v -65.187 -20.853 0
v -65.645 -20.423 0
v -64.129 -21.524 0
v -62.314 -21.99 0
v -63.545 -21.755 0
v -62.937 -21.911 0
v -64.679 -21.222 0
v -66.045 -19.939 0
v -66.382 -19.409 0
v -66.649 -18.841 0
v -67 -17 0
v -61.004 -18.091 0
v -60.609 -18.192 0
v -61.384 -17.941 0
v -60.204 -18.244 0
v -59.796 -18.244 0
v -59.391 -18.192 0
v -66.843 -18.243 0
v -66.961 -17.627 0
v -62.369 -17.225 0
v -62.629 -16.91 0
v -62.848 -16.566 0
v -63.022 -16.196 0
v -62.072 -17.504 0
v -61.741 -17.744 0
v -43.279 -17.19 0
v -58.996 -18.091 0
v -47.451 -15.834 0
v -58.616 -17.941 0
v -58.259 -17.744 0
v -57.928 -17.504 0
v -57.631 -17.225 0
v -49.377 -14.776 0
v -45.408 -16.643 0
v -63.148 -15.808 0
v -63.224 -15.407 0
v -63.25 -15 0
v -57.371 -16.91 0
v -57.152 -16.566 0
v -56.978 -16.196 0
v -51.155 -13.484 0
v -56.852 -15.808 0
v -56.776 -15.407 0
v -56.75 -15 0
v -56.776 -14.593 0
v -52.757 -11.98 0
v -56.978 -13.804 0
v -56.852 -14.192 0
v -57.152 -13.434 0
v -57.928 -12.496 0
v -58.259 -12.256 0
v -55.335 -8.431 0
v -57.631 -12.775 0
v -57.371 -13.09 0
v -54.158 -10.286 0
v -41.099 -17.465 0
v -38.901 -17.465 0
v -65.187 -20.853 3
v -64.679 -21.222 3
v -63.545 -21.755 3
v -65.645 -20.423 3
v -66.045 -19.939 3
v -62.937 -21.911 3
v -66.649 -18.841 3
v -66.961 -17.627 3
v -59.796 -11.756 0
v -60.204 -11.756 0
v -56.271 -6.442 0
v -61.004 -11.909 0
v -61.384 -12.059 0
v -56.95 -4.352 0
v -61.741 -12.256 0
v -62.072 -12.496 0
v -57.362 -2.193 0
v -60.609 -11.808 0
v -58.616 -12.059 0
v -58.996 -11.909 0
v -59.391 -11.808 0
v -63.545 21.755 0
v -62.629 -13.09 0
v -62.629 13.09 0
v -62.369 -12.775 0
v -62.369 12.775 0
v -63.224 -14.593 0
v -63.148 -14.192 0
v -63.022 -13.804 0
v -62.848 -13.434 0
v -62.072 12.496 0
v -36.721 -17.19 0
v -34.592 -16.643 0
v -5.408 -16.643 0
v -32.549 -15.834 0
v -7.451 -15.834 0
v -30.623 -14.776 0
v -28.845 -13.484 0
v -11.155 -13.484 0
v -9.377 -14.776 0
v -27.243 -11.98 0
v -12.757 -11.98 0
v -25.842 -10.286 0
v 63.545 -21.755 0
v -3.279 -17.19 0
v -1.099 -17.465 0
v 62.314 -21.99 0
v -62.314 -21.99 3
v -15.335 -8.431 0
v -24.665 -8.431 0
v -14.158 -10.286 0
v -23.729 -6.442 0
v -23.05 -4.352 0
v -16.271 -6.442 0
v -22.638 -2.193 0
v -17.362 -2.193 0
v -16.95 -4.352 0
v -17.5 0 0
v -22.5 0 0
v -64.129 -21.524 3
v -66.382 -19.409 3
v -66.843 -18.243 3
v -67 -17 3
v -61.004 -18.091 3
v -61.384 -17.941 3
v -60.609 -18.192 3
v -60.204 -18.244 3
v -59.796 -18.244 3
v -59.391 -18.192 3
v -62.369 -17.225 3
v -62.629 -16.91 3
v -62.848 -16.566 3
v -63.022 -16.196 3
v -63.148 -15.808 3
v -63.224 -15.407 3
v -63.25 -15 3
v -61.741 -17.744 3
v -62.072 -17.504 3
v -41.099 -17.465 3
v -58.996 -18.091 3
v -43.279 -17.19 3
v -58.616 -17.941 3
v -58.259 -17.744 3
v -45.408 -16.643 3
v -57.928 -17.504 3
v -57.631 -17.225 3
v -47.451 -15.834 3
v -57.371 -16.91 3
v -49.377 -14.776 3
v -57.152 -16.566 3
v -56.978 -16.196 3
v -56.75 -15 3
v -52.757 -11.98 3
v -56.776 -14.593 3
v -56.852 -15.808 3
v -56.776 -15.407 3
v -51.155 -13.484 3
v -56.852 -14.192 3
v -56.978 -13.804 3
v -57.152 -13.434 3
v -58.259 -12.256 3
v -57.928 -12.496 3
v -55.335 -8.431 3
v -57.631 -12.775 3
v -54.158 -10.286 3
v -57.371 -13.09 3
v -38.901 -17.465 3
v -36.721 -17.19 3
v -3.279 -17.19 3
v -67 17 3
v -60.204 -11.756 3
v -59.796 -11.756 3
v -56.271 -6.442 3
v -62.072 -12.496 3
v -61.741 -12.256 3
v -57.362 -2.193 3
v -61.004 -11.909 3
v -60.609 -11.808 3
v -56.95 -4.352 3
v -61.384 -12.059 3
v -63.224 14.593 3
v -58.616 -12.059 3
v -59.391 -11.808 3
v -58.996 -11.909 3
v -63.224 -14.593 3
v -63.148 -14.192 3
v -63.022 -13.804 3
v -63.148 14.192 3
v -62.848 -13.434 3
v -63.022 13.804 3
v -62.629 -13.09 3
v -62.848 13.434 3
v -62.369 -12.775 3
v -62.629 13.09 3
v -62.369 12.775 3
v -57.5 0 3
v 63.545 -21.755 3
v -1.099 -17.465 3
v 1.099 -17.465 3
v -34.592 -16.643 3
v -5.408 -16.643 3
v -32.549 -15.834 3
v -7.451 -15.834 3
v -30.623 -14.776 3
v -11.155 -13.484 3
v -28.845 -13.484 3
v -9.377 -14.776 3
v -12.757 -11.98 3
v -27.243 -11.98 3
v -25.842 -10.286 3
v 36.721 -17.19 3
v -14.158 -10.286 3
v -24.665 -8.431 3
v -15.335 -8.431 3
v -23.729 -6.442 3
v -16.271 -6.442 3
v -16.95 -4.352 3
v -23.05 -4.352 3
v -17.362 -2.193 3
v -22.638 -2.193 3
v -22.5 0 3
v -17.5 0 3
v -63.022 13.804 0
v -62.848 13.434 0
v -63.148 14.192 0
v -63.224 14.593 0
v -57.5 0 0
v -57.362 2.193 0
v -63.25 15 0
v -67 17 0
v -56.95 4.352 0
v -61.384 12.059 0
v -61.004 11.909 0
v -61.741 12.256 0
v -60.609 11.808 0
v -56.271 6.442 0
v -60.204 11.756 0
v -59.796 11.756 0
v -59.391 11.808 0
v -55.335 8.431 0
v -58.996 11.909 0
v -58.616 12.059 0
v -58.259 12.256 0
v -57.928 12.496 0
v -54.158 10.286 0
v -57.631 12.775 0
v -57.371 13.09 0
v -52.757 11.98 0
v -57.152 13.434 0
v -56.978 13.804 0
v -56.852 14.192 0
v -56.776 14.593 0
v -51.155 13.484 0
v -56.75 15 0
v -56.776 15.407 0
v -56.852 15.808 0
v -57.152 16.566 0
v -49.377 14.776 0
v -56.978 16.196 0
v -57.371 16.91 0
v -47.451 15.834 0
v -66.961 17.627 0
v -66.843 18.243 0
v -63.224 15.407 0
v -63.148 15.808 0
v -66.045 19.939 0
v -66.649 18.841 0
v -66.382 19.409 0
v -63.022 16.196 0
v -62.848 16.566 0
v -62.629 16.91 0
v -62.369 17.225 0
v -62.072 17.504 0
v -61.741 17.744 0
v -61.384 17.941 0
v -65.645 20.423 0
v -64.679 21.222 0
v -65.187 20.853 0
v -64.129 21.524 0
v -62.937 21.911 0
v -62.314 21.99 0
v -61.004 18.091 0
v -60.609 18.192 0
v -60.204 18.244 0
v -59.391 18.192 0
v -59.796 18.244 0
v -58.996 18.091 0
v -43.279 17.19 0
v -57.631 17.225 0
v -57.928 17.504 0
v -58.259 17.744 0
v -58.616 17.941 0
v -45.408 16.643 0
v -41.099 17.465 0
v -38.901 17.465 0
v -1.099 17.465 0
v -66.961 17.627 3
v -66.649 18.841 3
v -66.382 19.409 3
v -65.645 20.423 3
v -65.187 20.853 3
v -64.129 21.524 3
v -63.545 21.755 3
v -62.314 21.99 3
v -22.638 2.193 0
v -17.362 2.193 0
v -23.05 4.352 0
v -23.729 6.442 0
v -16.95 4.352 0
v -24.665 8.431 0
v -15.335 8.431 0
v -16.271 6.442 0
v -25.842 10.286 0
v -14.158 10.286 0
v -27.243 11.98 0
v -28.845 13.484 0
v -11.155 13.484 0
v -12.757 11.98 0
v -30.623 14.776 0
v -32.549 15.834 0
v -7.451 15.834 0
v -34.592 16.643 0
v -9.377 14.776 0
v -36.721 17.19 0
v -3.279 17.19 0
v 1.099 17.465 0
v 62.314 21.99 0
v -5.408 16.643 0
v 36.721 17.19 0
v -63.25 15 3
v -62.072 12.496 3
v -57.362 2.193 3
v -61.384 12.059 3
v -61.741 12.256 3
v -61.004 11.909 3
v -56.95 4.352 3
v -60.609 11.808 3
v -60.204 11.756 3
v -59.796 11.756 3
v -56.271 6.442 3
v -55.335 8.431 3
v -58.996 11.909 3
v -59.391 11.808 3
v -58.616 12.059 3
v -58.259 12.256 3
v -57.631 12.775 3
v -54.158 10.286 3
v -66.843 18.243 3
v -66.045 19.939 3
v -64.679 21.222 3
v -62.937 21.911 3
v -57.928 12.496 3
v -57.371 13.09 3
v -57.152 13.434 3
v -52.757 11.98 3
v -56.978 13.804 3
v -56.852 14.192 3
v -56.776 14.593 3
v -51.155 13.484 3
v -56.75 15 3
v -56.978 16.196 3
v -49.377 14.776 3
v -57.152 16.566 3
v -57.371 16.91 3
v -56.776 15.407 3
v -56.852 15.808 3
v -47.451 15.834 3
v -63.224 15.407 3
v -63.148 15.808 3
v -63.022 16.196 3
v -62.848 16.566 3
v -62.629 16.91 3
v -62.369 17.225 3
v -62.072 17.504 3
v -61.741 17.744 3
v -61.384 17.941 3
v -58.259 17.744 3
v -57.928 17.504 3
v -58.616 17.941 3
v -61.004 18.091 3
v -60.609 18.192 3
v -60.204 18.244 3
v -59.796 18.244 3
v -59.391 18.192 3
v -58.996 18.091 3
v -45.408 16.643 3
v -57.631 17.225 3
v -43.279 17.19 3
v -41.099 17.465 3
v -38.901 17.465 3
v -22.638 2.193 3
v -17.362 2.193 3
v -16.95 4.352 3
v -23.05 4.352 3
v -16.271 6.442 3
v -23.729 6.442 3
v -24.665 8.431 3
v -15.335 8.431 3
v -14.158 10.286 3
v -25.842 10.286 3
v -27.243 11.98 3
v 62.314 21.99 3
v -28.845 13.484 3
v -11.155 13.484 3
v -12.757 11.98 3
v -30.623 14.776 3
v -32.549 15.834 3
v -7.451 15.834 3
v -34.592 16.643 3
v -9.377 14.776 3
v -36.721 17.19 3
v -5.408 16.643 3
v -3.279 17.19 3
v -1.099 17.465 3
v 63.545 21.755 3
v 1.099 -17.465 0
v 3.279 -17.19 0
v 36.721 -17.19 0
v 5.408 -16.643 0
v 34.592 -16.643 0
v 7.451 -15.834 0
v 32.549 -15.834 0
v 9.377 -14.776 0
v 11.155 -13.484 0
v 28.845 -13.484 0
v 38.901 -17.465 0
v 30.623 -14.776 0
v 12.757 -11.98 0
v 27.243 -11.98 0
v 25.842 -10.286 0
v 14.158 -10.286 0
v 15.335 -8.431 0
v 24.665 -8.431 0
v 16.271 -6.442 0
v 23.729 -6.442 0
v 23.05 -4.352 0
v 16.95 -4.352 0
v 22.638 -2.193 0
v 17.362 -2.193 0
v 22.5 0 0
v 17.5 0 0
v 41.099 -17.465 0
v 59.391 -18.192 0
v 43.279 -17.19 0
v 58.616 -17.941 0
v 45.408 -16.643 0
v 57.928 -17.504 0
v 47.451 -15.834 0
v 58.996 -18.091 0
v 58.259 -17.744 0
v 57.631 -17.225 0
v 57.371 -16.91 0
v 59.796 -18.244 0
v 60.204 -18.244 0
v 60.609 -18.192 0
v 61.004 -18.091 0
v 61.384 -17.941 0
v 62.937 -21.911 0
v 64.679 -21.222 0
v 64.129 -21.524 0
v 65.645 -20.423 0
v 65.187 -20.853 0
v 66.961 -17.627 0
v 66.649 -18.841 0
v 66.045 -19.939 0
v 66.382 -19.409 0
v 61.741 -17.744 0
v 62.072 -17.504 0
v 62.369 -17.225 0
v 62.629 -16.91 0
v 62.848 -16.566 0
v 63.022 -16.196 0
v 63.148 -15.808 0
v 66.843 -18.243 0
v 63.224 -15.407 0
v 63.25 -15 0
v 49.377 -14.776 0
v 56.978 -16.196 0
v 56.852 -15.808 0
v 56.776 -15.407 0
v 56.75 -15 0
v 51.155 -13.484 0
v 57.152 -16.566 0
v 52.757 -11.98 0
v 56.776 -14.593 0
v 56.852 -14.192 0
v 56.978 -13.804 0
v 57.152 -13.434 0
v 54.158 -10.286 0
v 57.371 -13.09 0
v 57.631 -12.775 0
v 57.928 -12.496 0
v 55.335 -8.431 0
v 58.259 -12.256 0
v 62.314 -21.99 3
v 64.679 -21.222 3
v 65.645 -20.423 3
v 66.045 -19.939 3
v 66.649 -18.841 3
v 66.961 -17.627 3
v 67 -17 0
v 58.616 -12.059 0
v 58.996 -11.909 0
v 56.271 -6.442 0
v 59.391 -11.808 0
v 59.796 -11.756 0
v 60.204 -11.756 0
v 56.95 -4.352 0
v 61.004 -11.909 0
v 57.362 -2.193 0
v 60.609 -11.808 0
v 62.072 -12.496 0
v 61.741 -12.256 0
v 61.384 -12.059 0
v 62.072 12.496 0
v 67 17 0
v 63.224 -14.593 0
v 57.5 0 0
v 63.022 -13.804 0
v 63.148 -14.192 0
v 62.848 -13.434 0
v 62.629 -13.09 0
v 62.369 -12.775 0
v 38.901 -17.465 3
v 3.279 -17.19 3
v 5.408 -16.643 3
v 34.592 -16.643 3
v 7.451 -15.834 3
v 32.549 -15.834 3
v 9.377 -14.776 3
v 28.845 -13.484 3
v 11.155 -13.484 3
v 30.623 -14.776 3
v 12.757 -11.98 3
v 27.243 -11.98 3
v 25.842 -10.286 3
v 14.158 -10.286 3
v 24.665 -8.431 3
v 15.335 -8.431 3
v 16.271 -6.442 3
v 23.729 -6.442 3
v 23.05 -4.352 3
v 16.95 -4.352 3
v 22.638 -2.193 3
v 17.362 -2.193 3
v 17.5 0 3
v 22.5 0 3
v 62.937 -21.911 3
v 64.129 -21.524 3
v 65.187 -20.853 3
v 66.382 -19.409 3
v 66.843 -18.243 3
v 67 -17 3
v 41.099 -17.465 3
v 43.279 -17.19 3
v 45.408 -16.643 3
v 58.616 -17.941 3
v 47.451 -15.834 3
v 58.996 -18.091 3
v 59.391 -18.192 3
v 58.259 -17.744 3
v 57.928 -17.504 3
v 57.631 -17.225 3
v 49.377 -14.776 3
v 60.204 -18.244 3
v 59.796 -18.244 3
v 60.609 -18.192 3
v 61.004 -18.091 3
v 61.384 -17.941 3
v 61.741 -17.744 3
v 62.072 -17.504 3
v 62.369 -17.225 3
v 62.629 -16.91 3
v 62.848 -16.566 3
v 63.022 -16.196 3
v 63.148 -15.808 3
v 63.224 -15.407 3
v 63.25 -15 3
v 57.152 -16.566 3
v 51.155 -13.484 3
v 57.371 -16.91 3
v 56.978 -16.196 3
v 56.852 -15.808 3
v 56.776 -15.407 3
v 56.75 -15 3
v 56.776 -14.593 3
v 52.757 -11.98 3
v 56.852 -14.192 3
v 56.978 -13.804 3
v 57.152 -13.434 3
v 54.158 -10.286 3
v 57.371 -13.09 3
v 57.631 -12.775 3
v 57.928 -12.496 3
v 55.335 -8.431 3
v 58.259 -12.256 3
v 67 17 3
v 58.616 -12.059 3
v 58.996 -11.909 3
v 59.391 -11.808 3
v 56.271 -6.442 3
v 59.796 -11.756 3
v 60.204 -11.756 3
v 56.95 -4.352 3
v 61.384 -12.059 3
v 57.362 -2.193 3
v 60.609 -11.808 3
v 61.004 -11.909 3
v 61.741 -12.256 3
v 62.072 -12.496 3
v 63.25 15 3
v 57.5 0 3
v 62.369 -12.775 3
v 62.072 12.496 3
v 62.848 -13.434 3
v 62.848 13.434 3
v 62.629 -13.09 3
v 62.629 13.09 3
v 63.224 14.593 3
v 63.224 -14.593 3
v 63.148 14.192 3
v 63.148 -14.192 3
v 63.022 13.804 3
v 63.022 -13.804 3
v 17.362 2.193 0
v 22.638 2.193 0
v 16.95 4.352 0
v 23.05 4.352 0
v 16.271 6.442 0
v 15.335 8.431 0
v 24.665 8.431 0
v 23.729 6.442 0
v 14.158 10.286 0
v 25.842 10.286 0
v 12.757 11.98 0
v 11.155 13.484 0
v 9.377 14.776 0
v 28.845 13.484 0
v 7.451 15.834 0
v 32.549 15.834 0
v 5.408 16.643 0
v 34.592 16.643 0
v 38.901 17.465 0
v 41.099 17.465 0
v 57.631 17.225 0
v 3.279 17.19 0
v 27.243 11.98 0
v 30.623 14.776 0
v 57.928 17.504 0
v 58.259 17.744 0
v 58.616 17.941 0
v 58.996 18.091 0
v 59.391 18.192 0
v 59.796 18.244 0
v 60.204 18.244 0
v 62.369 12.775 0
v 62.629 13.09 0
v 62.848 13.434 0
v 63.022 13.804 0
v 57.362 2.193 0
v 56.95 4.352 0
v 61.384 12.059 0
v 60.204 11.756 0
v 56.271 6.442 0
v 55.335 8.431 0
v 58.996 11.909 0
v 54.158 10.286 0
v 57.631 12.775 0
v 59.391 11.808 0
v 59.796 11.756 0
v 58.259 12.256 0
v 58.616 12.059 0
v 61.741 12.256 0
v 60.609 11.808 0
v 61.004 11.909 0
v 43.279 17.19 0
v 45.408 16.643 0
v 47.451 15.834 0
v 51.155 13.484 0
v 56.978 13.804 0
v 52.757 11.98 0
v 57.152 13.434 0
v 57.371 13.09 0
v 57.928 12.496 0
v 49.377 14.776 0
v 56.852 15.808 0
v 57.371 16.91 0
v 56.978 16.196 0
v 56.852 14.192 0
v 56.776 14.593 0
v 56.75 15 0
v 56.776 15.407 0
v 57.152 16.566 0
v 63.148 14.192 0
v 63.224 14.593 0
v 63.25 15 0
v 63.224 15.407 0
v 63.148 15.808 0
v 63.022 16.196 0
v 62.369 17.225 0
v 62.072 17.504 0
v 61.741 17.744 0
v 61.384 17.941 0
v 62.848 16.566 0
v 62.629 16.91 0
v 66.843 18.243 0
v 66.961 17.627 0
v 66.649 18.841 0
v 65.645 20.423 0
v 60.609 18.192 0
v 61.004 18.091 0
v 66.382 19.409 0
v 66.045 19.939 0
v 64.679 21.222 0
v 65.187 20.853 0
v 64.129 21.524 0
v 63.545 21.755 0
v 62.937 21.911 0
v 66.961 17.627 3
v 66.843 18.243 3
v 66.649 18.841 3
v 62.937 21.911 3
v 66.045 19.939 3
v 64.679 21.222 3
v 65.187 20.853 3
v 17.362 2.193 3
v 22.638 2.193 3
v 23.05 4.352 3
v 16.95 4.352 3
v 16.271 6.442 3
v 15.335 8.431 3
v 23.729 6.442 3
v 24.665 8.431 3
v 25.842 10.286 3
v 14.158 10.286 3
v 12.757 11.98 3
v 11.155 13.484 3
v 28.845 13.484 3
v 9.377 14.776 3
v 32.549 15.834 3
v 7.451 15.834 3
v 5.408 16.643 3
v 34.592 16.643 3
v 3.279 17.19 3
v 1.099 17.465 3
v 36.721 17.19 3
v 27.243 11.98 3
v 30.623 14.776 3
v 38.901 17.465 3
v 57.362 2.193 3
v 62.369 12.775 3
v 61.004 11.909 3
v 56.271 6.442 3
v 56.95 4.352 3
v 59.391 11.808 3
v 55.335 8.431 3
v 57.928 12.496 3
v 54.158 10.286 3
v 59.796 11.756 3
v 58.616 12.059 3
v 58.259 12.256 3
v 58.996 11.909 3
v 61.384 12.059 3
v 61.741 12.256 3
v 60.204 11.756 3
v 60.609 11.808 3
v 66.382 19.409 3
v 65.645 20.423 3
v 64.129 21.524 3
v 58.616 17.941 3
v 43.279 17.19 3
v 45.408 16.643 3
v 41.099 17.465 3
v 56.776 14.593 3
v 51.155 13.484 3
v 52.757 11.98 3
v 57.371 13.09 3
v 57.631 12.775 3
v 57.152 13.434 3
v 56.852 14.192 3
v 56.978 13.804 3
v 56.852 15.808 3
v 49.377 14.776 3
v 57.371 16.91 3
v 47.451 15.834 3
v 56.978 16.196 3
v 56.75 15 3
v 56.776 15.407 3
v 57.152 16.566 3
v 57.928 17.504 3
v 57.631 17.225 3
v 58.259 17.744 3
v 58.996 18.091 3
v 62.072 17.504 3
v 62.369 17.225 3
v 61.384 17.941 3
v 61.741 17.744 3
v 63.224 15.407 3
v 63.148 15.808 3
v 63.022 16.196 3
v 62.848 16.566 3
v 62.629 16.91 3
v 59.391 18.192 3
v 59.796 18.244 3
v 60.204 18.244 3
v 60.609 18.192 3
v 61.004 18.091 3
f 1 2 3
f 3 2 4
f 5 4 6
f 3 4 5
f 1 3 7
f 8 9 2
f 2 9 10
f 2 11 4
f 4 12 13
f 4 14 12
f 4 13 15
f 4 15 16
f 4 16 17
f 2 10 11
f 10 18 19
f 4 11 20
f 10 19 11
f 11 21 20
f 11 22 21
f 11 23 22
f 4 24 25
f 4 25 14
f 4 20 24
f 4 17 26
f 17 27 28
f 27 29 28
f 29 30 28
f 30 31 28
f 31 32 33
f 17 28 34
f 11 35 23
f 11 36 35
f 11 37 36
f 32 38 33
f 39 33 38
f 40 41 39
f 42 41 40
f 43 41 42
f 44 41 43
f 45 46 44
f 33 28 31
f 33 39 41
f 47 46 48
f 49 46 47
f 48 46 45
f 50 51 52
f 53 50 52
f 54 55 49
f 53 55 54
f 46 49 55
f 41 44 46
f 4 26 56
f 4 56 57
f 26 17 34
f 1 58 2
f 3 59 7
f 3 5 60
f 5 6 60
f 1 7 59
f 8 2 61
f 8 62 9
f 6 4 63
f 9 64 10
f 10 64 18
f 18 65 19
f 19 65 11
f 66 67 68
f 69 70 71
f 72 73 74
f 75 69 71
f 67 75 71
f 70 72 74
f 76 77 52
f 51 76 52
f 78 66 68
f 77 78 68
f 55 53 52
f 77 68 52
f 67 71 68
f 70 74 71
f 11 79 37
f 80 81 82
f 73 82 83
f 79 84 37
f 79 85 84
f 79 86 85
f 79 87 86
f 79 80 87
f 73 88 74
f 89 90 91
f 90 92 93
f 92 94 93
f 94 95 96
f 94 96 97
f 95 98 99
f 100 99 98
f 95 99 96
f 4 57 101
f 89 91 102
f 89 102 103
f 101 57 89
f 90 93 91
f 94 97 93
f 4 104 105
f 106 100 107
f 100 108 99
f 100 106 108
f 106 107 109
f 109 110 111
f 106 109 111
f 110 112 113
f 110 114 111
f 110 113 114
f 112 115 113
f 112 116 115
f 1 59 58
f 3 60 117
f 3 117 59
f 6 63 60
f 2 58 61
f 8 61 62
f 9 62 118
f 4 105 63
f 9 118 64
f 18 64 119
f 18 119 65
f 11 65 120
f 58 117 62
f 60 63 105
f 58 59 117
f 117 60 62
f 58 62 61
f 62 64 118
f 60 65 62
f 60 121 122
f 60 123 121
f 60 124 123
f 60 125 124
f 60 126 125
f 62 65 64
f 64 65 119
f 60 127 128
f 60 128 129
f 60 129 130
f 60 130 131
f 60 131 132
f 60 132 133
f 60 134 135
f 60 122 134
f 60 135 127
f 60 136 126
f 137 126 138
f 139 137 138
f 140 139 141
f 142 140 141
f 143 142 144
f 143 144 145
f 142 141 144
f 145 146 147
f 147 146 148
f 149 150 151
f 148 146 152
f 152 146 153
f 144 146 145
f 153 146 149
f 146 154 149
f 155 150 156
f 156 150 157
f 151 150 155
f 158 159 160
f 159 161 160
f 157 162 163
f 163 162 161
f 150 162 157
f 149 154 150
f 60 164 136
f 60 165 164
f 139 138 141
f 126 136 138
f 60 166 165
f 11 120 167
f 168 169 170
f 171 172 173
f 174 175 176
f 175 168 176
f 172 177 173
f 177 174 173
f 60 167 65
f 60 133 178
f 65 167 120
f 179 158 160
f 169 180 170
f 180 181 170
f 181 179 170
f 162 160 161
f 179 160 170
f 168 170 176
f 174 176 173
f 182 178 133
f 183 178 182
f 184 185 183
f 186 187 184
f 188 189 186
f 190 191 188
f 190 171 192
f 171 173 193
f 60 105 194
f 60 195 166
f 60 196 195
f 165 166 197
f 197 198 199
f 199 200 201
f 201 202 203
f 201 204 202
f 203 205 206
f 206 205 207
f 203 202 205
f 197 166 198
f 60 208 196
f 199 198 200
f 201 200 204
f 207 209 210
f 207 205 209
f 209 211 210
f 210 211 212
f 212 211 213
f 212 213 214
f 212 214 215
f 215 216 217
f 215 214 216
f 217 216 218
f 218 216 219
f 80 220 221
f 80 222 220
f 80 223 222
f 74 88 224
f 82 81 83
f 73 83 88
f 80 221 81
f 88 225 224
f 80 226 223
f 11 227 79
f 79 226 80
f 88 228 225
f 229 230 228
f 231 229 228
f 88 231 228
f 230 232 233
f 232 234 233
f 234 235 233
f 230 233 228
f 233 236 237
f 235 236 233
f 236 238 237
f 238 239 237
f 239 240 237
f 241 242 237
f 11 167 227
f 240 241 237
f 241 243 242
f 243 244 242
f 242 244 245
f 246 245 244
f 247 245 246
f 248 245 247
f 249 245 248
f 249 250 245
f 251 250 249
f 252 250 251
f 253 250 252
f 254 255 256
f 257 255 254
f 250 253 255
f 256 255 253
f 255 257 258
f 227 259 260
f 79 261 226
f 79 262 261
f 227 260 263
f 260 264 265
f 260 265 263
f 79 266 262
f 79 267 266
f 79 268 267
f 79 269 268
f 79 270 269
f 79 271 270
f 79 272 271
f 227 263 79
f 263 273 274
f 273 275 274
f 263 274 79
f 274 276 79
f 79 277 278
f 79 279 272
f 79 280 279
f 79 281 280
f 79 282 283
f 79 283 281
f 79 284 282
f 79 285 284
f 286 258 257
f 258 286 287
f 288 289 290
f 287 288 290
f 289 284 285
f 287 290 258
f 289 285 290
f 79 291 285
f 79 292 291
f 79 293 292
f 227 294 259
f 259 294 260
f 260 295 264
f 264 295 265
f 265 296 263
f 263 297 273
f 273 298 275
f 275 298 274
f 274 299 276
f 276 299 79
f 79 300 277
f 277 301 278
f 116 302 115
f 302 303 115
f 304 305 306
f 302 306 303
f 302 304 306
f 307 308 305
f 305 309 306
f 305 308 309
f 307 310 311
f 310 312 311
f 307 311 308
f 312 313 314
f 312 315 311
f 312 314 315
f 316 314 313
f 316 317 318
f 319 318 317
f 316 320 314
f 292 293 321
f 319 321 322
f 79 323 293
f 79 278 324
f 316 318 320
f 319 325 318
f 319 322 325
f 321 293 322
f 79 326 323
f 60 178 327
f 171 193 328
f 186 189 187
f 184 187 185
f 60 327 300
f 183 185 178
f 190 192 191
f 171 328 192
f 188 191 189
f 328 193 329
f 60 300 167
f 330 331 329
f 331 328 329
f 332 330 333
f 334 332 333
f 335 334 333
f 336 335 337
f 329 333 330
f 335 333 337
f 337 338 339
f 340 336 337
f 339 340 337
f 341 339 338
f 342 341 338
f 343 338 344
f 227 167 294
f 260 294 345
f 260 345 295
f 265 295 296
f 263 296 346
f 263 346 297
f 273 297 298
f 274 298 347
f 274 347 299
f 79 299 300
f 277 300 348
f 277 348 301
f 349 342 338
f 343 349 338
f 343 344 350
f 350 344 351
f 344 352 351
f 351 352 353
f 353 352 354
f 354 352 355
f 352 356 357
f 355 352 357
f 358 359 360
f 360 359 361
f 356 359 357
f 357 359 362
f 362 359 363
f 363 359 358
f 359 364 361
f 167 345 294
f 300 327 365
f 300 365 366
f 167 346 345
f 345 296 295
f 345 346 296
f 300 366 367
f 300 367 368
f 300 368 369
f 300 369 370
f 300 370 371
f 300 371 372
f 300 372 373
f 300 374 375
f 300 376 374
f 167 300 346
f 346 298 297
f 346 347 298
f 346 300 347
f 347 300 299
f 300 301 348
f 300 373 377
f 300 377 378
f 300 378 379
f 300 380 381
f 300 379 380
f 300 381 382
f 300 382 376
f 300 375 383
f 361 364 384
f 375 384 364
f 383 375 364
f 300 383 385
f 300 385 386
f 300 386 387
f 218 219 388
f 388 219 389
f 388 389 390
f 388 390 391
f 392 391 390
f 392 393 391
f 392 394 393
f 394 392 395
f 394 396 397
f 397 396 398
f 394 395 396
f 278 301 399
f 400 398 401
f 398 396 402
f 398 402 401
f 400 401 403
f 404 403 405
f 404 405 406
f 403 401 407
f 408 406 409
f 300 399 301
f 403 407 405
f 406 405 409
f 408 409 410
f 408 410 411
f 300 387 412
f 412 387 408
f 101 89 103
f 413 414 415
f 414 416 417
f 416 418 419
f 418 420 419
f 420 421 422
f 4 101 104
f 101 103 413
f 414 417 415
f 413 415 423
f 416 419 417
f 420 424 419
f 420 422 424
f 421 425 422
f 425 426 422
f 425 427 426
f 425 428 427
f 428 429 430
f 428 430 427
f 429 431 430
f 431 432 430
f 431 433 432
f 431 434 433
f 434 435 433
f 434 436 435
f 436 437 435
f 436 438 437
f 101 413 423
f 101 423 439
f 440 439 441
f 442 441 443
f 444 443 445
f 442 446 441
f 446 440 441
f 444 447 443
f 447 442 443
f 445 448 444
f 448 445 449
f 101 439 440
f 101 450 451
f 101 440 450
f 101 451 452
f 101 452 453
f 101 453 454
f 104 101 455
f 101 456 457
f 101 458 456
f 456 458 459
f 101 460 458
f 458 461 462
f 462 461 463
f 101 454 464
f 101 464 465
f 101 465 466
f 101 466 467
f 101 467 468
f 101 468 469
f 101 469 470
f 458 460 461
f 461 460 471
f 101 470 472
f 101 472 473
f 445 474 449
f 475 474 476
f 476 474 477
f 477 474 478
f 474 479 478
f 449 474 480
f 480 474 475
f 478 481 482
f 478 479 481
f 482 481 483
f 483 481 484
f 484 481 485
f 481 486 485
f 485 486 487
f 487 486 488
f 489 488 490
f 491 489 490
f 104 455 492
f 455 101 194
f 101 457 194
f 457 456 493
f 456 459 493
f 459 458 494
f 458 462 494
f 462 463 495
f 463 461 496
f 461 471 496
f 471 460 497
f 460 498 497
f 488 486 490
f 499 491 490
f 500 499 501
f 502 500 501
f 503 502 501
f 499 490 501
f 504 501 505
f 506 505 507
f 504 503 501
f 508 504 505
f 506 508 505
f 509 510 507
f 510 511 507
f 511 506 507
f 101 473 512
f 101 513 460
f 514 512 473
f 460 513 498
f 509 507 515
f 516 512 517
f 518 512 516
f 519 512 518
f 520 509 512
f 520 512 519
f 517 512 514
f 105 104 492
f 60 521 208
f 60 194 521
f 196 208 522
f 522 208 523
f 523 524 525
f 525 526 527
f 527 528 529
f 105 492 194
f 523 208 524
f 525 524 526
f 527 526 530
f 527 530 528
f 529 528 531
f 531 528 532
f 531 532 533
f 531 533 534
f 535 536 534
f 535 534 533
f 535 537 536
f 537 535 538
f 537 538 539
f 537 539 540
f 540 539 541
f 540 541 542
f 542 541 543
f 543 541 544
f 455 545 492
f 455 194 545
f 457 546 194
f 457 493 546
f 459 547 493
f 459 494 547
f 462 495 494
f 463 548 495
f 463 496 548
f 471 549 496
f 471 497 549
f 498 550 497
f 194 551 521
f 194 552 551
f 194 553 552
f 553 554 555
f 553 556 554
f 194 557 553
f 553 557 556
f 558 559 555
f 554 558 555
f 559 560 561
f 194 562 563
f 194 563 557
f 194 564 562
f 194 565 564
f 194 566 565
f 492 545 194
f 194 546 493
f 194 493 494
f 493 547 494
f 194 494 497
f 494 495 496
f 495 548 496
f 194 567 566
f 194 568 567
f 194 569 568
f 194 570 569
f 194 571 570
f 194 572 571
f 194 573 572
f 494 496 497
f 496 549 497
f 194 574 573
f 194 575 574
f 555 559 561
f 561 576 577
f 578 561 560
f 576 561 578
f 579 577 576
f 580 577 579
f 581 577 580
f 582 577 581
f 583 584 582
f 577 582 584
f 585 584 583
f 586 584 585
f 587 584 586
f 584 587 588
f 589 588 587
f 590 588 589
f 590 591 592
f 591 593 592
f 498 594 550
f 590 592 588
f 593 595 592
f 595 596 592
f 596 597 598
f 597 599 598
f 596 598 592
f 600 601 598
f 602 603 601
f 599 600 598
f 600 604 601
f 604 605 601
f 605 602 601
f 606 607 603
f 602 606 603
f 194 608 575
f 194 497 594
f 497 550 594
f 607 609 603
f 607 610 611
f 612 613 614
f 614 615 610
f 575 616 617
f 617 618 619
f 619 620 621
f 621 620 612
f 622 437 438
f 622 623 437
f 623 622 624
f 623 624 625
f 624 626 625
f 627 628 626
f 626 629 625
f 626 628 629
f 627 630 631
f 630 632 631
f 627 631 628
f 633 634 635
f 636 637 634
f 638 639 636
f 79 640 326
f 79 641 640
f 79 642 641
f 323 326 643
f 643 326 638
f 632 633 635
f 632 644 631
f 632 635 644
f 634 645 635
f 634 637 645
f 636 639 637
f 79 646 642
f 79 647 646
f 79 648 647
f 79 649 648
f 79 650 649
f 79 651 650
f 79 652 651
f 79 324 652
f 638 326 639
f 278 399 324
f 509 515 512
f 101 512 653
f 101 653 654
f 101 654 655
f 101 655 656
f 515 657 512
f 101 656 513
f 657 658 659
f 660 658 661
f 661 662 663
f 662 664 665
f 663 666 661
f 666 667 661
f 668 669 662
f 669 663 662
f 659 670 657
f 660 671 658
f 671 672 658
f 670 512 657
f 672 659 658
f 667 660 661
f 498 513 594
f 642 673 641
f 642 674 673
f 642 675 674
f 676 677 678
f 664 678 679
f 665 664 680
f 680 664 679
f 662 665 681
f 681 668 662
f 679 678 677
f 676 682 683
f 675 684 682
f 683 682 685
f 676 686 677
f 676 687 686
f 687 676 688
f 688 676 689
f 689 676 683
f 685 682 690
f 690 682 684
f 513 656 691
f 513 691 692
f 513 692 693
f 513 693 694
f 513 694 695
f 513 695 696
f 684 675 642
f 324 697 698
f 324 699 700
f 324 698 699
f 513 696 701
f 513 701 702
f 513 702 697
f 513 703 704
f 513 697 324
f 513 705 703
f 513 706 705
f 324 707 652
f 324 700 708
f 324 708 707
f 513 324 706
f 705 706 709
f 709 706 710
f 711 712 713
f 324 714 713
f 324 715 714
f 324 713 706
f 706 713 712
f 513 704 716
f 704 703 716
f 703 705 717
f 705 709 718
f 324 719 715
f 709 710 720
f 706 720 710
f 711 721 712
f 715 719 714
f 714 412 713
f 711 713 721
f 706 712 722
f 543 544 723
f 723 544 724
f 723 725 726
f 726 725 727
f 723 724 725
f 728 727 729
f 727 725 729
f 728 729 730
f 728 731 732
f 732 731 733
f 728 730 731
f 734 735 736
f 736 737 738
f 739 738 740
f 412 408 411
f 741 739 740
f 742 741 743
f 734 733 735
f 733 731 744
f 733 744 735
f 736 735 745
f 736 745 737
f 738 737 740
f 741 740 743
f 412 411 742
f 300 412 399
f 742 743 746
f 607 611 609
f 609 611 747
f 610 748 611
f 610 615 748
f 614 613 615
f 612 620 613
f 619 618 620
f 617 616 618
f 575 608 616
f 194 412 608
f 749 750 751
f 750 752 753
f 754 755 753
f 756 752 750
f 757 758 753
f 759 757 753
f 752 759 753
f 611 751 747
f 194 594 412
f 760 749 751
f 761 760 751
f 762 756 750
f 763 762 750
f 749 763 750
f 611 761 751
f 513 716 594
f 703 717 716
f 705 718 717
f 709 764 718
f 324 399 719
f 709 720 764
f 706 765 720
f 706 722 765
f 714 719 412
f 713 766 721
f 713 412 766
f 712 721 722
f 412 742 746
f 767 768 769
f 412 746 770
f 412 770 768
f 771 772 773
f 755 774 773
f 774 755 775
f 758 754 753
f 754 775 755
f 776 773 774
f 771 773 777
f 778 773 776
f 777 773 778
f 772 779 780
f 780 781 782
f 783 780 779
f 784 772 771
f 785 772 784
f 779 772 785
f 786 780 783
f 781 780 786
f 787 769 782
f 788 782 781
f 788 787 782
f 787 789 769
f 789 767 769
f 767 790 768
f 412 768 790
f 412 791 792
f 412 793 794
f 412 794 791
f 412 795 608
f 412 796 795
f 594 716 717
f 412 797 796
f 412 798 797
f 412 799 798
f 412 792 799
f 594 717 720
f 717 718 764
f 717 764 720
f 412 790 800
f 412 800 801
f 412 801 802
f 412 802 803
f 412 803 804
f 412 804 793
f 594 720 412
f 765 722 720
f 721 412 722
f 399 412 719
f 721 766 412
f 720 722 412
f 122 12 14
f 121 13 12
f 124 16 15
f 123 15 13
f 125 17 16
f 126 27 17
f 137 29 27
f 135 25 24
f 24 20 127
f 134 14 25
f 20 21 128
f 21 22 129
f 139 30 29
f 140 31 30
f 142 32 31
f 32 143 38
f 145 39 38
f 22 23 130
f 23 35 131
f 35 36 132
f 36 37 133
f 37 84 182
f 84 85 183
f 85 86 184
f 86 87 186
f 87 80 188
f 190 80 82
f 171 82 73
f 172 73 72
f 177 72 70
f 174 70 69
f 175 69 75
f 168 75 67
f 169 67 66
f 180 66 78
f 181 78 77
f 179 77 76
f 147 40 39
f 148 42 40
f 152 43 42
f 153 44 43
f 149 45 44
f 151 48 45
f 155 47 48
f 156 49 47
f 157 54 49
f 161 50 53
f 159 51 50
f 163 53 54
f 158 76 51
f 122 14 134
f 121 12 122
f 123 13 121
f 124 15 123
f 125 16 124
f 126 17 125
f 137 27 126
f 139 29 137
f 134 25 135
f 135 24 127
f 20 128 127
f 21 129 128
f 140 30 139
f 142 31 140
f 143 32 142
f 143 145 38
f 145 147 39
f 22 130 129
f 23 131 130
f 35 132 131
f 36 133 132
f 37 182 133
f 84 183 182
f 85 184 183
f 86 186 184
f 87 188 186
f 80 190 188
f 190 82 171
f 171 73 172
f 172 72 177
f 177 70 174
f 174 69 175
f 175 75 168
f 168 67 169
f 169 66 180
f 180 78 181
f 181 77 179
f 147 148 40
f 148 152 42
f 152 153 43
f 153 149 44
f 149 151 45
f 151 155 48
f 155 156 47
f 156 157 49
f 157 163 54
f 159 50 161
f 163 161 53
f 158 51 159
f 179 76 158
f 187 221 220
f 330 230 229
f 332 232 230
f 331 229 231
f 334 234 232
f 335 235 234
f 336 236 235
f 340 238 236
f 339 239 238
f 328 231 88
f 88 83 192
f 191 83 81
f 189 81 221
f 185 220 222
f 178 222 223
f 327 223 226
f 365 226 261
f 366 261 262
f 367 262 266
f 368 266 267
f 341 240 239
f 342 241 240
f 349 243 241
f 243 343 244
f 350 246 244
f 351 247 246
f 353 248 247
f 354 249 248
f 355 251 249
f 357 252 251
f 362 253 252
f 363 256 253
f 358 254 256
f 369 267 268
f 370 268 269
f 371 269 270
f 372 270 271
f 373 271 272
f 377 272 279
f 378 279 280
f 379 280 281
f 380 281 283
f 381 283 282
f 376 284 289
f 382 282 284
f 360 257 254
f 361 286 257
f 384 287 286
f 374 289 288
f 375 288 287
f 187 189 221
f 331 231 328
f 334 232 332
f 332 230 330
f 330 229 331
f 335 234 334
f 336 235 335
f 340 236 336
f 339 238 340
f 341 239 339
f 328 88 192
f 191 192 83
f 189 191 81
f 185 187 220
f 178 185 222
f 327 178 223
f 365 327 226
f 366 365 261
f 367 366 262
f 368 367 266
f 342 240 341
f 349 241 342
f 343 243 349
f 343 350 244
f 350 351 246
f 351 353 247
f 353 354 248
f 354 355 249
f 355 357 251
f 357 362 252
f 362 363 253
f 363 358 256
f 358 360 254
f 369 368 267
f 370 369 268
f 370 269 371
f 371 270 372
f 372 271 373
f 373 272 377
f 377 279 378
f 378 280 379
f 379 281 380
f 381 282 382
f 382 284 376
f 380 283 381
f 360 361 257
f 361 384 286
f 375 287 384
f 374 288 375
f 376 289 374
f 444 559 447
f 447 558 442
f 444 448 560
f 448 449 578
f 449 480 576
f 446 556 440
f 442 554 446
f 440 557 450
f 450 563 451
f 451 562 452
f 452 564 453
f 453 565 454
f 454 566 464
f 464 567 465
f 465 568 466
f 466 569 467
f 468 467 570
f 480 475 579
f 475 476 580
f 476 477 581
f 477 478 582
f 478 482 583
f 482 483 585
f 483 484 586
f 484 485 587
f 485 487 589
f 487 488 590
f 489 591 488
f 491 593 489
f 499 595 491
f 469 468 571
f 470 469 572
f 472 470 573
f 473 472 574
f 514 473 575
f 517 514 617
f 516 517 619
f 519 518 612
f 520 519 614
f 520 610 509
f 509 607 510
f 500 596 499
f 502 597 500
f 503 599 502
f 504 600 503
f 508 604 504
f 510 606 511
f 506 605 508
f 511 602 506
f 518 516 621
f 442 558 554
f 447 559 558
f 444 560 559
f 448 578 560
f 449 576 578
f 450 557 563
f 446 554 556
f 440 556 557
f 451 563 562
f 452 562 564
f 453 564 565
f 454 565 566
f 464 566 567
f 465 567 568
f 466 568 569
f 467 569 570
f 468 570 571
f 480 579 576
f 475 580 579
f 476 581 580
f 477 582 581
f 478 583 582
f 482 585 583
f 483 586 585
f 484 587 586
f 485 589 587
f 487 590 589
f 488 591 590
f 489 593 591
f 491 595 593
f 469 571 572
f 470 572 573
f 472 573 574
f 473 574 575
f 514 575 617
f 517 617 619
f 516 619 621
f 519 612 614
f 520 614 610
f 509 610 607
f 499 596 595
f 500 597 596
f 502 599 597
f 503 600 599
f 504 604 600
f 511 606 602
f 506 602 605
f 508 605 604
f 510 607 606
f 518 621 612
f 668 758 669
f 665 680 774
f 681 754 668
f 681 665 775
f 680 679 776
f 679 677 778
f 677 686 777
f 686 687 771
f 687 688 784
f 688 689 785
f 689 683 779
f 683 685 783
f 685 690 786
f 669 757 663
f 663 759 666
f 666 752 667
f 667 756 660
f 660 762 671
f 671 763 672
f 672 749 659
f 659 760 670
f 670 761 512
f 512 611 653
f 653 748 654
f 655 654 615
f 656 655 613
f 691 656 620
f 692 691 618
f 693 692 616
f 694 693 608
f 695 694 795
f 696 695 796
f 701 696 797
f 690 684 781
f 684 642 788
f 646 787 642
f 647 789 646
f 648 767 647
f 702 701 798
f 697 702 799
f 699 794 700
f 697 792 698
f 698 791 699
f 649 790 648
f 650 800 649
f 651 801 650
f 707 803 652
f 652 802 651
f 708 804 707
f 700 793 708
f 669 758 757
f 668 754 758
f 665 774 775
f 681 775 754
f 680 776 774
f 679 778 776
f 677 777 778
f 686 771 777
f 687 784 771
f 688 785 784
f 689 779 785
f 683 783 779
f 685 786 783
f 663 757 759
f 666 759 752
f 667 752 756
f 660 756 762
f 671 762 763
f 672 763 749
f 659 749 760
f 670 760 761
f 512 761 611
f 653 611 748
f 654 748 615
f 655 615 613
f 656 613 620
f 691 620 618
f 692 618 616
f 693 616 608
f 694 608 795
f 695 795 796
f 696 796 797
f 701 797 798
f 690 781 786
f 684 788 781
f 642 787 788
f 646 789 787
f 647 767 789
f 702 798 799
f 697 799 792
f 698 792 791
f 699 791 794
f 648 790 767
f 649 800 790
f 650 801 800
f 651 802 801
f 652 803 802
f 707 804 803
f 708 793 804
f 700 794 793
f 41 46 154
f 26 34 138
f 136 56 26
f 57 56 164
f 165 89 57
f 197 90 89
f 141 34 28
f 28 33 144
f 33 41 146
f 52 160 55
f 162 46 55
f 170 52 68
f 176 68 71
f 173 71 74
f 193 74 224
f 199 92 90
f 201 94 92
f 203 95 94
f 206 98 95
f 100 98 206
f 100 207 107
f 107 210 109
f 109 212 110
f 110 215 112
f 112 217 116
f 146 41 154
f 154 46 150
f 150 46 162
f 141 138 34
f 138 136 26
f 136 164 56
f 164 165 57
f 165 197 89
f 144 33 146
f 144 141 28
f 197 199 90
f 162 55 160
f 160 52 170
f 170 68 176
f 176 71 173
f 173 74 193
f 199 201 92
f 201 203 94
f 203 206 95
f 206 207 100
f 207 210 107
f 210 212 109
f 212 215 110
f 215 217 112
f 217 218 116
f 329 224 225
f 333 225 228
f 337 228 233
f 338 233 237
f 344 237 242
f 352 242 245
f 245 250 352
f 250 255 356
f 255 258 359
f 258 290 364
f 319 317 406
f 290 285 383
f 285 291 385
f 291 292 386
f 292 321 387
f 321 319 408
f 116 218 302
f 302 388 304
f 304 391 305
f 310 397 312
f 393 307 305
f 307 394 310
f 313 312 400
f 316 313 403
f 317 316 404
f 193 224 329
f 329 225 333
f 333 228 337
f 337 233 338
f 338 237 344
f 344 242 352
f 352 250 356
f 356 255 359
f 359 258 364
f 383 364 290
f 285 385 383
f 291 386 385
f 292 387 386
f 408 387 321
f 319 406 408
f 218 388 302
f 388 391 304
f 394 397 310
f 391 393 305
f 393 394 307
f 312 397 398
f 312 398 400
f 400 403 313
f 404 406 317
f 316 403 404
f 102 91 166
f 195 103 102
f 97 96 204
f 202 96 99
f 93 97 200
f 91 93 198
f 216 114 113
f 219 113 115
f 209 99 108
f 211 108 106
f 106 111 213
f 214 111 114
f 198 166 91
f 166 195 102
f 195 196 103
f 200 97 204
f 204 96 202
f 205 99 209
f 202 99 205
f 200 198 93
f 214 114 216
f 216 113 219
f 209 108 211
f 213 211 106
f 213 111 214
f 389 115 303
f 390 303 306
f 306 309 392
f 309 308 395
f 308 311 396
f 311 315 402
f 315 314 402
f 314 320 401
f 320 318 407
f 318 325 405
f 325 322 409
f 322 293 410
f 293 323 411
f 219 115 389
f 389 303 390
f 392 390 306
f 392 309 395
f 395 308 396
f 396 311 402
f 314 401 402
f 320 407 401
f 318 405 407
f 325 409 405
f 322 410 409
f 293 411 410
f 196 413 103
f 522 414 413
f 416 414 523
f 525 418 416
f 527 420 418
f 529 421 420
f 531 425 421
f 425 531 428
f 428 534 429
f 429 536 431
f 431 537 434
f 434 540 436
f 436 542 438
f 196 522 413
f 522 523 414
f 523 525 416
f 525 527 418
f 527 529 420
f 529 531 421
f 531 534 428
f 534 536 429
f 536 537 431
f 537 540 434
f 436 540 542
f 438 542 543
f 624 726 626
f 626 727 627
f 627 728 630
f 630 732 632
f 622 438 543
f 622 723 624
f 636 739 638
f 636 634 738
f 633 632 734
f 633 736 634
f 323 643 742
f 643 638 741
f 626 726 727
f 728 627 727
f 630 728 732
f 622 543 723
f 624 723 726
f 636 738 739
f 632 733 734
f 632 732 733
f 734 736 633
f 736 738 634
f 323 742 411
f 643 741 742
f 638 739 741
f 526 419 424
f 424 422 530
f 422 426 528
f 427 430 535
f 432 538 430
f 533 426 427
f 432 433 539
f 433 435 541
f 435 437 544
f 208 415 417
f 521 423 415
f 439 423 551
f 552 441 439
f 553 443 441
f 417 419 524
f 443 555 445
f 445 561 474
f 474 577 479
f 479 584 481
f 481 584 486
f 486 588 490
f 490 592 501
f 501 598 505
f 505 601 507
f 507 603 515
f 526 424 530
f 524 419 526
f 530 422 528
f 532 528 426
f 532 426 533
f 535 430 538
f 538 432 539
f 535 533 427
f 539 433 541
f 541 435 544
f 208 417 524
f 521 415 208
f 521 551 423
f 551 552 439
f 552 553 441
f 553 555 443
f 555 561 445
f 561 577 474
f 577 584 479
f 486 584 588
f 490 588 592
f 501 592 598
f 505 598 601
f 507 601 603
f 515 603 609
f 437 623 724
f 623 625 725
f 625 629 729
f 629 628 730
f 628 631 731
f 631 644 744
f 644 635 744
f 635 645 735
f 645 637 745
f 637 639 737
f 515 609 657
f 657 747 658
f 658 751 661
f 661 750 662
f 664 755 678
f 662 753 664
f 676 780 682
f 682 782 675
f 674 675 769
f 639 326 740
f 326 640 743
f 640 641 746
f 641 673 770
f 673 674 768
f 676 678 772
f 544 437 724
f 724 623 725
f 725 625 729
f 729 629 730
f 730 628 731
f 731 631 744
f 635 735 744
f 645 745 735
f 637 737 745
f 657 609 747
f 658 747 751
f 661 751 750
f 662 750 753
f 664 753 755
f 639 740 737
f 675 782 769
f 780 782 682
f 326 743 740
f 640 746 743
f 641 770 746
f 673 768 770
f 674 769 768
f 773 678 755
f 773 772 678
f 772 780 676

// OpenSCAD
$fn = 50;

difference() {
	union() {
		hull() {
			translate(v = [-62.0, 17.0, 0]) {
				cylinder(h = 3, r = 5);
			}
			translate(v = [62.0, 17.0, 0]) {
				cylinder(h = 3, r = 5);
			}
			translate(v = [-62.0, -17.0, 0]) {
				cylinder(h = 3, r = 5);
			}
			translate(v = [62.0, -17.0, 0]) {
				cylinder(h = 3, r = 5);
			}
		}
	}
	union() {
		translate(v = [-60.0, -15.0, -100.0]) {
			cylinder(h = 200, r = 3.25);
		}
		translate(v = [-60.0, 15.0, -100.0]) {
			cylinder(h = 200, r = 3.25);
		}
		translate(v = [60.0, -15.0, -100.0]) {
			cylinder(h = 200, r = 3.25);
		}
		translate(v = [60.0, 15.0, -100.0]) {
			cylinder(h = 200, r = 3.25);
		}
		translate(v = [-60.0, -15.0, -100.0]) {
			cylinder(h = 200, r = 1.8);
		}
		translate(v = [-60.0, 15.0, -100.0]) {
			cylinder(h = 200, r = 1.8);
		}
		translate(v = [60.0, -15.0, -100.0]) {
			cylinder(h = 200, r = 1.8);
		}
		translate(v = [60.0, 15.0, -100.0]) {
			cylinder(h = 200, r = 1.8);
		}
		translate(v = [-40.0, 0, 0.0]) {
			cylinder(h = 3, r = 17.5);
		}
		cylinder(h = 3, r = 17.5);
		translate(v = [40.0, 0, 0.0]) {
			cylinder(h = 3, r = 17.5);
		}
	}
}
